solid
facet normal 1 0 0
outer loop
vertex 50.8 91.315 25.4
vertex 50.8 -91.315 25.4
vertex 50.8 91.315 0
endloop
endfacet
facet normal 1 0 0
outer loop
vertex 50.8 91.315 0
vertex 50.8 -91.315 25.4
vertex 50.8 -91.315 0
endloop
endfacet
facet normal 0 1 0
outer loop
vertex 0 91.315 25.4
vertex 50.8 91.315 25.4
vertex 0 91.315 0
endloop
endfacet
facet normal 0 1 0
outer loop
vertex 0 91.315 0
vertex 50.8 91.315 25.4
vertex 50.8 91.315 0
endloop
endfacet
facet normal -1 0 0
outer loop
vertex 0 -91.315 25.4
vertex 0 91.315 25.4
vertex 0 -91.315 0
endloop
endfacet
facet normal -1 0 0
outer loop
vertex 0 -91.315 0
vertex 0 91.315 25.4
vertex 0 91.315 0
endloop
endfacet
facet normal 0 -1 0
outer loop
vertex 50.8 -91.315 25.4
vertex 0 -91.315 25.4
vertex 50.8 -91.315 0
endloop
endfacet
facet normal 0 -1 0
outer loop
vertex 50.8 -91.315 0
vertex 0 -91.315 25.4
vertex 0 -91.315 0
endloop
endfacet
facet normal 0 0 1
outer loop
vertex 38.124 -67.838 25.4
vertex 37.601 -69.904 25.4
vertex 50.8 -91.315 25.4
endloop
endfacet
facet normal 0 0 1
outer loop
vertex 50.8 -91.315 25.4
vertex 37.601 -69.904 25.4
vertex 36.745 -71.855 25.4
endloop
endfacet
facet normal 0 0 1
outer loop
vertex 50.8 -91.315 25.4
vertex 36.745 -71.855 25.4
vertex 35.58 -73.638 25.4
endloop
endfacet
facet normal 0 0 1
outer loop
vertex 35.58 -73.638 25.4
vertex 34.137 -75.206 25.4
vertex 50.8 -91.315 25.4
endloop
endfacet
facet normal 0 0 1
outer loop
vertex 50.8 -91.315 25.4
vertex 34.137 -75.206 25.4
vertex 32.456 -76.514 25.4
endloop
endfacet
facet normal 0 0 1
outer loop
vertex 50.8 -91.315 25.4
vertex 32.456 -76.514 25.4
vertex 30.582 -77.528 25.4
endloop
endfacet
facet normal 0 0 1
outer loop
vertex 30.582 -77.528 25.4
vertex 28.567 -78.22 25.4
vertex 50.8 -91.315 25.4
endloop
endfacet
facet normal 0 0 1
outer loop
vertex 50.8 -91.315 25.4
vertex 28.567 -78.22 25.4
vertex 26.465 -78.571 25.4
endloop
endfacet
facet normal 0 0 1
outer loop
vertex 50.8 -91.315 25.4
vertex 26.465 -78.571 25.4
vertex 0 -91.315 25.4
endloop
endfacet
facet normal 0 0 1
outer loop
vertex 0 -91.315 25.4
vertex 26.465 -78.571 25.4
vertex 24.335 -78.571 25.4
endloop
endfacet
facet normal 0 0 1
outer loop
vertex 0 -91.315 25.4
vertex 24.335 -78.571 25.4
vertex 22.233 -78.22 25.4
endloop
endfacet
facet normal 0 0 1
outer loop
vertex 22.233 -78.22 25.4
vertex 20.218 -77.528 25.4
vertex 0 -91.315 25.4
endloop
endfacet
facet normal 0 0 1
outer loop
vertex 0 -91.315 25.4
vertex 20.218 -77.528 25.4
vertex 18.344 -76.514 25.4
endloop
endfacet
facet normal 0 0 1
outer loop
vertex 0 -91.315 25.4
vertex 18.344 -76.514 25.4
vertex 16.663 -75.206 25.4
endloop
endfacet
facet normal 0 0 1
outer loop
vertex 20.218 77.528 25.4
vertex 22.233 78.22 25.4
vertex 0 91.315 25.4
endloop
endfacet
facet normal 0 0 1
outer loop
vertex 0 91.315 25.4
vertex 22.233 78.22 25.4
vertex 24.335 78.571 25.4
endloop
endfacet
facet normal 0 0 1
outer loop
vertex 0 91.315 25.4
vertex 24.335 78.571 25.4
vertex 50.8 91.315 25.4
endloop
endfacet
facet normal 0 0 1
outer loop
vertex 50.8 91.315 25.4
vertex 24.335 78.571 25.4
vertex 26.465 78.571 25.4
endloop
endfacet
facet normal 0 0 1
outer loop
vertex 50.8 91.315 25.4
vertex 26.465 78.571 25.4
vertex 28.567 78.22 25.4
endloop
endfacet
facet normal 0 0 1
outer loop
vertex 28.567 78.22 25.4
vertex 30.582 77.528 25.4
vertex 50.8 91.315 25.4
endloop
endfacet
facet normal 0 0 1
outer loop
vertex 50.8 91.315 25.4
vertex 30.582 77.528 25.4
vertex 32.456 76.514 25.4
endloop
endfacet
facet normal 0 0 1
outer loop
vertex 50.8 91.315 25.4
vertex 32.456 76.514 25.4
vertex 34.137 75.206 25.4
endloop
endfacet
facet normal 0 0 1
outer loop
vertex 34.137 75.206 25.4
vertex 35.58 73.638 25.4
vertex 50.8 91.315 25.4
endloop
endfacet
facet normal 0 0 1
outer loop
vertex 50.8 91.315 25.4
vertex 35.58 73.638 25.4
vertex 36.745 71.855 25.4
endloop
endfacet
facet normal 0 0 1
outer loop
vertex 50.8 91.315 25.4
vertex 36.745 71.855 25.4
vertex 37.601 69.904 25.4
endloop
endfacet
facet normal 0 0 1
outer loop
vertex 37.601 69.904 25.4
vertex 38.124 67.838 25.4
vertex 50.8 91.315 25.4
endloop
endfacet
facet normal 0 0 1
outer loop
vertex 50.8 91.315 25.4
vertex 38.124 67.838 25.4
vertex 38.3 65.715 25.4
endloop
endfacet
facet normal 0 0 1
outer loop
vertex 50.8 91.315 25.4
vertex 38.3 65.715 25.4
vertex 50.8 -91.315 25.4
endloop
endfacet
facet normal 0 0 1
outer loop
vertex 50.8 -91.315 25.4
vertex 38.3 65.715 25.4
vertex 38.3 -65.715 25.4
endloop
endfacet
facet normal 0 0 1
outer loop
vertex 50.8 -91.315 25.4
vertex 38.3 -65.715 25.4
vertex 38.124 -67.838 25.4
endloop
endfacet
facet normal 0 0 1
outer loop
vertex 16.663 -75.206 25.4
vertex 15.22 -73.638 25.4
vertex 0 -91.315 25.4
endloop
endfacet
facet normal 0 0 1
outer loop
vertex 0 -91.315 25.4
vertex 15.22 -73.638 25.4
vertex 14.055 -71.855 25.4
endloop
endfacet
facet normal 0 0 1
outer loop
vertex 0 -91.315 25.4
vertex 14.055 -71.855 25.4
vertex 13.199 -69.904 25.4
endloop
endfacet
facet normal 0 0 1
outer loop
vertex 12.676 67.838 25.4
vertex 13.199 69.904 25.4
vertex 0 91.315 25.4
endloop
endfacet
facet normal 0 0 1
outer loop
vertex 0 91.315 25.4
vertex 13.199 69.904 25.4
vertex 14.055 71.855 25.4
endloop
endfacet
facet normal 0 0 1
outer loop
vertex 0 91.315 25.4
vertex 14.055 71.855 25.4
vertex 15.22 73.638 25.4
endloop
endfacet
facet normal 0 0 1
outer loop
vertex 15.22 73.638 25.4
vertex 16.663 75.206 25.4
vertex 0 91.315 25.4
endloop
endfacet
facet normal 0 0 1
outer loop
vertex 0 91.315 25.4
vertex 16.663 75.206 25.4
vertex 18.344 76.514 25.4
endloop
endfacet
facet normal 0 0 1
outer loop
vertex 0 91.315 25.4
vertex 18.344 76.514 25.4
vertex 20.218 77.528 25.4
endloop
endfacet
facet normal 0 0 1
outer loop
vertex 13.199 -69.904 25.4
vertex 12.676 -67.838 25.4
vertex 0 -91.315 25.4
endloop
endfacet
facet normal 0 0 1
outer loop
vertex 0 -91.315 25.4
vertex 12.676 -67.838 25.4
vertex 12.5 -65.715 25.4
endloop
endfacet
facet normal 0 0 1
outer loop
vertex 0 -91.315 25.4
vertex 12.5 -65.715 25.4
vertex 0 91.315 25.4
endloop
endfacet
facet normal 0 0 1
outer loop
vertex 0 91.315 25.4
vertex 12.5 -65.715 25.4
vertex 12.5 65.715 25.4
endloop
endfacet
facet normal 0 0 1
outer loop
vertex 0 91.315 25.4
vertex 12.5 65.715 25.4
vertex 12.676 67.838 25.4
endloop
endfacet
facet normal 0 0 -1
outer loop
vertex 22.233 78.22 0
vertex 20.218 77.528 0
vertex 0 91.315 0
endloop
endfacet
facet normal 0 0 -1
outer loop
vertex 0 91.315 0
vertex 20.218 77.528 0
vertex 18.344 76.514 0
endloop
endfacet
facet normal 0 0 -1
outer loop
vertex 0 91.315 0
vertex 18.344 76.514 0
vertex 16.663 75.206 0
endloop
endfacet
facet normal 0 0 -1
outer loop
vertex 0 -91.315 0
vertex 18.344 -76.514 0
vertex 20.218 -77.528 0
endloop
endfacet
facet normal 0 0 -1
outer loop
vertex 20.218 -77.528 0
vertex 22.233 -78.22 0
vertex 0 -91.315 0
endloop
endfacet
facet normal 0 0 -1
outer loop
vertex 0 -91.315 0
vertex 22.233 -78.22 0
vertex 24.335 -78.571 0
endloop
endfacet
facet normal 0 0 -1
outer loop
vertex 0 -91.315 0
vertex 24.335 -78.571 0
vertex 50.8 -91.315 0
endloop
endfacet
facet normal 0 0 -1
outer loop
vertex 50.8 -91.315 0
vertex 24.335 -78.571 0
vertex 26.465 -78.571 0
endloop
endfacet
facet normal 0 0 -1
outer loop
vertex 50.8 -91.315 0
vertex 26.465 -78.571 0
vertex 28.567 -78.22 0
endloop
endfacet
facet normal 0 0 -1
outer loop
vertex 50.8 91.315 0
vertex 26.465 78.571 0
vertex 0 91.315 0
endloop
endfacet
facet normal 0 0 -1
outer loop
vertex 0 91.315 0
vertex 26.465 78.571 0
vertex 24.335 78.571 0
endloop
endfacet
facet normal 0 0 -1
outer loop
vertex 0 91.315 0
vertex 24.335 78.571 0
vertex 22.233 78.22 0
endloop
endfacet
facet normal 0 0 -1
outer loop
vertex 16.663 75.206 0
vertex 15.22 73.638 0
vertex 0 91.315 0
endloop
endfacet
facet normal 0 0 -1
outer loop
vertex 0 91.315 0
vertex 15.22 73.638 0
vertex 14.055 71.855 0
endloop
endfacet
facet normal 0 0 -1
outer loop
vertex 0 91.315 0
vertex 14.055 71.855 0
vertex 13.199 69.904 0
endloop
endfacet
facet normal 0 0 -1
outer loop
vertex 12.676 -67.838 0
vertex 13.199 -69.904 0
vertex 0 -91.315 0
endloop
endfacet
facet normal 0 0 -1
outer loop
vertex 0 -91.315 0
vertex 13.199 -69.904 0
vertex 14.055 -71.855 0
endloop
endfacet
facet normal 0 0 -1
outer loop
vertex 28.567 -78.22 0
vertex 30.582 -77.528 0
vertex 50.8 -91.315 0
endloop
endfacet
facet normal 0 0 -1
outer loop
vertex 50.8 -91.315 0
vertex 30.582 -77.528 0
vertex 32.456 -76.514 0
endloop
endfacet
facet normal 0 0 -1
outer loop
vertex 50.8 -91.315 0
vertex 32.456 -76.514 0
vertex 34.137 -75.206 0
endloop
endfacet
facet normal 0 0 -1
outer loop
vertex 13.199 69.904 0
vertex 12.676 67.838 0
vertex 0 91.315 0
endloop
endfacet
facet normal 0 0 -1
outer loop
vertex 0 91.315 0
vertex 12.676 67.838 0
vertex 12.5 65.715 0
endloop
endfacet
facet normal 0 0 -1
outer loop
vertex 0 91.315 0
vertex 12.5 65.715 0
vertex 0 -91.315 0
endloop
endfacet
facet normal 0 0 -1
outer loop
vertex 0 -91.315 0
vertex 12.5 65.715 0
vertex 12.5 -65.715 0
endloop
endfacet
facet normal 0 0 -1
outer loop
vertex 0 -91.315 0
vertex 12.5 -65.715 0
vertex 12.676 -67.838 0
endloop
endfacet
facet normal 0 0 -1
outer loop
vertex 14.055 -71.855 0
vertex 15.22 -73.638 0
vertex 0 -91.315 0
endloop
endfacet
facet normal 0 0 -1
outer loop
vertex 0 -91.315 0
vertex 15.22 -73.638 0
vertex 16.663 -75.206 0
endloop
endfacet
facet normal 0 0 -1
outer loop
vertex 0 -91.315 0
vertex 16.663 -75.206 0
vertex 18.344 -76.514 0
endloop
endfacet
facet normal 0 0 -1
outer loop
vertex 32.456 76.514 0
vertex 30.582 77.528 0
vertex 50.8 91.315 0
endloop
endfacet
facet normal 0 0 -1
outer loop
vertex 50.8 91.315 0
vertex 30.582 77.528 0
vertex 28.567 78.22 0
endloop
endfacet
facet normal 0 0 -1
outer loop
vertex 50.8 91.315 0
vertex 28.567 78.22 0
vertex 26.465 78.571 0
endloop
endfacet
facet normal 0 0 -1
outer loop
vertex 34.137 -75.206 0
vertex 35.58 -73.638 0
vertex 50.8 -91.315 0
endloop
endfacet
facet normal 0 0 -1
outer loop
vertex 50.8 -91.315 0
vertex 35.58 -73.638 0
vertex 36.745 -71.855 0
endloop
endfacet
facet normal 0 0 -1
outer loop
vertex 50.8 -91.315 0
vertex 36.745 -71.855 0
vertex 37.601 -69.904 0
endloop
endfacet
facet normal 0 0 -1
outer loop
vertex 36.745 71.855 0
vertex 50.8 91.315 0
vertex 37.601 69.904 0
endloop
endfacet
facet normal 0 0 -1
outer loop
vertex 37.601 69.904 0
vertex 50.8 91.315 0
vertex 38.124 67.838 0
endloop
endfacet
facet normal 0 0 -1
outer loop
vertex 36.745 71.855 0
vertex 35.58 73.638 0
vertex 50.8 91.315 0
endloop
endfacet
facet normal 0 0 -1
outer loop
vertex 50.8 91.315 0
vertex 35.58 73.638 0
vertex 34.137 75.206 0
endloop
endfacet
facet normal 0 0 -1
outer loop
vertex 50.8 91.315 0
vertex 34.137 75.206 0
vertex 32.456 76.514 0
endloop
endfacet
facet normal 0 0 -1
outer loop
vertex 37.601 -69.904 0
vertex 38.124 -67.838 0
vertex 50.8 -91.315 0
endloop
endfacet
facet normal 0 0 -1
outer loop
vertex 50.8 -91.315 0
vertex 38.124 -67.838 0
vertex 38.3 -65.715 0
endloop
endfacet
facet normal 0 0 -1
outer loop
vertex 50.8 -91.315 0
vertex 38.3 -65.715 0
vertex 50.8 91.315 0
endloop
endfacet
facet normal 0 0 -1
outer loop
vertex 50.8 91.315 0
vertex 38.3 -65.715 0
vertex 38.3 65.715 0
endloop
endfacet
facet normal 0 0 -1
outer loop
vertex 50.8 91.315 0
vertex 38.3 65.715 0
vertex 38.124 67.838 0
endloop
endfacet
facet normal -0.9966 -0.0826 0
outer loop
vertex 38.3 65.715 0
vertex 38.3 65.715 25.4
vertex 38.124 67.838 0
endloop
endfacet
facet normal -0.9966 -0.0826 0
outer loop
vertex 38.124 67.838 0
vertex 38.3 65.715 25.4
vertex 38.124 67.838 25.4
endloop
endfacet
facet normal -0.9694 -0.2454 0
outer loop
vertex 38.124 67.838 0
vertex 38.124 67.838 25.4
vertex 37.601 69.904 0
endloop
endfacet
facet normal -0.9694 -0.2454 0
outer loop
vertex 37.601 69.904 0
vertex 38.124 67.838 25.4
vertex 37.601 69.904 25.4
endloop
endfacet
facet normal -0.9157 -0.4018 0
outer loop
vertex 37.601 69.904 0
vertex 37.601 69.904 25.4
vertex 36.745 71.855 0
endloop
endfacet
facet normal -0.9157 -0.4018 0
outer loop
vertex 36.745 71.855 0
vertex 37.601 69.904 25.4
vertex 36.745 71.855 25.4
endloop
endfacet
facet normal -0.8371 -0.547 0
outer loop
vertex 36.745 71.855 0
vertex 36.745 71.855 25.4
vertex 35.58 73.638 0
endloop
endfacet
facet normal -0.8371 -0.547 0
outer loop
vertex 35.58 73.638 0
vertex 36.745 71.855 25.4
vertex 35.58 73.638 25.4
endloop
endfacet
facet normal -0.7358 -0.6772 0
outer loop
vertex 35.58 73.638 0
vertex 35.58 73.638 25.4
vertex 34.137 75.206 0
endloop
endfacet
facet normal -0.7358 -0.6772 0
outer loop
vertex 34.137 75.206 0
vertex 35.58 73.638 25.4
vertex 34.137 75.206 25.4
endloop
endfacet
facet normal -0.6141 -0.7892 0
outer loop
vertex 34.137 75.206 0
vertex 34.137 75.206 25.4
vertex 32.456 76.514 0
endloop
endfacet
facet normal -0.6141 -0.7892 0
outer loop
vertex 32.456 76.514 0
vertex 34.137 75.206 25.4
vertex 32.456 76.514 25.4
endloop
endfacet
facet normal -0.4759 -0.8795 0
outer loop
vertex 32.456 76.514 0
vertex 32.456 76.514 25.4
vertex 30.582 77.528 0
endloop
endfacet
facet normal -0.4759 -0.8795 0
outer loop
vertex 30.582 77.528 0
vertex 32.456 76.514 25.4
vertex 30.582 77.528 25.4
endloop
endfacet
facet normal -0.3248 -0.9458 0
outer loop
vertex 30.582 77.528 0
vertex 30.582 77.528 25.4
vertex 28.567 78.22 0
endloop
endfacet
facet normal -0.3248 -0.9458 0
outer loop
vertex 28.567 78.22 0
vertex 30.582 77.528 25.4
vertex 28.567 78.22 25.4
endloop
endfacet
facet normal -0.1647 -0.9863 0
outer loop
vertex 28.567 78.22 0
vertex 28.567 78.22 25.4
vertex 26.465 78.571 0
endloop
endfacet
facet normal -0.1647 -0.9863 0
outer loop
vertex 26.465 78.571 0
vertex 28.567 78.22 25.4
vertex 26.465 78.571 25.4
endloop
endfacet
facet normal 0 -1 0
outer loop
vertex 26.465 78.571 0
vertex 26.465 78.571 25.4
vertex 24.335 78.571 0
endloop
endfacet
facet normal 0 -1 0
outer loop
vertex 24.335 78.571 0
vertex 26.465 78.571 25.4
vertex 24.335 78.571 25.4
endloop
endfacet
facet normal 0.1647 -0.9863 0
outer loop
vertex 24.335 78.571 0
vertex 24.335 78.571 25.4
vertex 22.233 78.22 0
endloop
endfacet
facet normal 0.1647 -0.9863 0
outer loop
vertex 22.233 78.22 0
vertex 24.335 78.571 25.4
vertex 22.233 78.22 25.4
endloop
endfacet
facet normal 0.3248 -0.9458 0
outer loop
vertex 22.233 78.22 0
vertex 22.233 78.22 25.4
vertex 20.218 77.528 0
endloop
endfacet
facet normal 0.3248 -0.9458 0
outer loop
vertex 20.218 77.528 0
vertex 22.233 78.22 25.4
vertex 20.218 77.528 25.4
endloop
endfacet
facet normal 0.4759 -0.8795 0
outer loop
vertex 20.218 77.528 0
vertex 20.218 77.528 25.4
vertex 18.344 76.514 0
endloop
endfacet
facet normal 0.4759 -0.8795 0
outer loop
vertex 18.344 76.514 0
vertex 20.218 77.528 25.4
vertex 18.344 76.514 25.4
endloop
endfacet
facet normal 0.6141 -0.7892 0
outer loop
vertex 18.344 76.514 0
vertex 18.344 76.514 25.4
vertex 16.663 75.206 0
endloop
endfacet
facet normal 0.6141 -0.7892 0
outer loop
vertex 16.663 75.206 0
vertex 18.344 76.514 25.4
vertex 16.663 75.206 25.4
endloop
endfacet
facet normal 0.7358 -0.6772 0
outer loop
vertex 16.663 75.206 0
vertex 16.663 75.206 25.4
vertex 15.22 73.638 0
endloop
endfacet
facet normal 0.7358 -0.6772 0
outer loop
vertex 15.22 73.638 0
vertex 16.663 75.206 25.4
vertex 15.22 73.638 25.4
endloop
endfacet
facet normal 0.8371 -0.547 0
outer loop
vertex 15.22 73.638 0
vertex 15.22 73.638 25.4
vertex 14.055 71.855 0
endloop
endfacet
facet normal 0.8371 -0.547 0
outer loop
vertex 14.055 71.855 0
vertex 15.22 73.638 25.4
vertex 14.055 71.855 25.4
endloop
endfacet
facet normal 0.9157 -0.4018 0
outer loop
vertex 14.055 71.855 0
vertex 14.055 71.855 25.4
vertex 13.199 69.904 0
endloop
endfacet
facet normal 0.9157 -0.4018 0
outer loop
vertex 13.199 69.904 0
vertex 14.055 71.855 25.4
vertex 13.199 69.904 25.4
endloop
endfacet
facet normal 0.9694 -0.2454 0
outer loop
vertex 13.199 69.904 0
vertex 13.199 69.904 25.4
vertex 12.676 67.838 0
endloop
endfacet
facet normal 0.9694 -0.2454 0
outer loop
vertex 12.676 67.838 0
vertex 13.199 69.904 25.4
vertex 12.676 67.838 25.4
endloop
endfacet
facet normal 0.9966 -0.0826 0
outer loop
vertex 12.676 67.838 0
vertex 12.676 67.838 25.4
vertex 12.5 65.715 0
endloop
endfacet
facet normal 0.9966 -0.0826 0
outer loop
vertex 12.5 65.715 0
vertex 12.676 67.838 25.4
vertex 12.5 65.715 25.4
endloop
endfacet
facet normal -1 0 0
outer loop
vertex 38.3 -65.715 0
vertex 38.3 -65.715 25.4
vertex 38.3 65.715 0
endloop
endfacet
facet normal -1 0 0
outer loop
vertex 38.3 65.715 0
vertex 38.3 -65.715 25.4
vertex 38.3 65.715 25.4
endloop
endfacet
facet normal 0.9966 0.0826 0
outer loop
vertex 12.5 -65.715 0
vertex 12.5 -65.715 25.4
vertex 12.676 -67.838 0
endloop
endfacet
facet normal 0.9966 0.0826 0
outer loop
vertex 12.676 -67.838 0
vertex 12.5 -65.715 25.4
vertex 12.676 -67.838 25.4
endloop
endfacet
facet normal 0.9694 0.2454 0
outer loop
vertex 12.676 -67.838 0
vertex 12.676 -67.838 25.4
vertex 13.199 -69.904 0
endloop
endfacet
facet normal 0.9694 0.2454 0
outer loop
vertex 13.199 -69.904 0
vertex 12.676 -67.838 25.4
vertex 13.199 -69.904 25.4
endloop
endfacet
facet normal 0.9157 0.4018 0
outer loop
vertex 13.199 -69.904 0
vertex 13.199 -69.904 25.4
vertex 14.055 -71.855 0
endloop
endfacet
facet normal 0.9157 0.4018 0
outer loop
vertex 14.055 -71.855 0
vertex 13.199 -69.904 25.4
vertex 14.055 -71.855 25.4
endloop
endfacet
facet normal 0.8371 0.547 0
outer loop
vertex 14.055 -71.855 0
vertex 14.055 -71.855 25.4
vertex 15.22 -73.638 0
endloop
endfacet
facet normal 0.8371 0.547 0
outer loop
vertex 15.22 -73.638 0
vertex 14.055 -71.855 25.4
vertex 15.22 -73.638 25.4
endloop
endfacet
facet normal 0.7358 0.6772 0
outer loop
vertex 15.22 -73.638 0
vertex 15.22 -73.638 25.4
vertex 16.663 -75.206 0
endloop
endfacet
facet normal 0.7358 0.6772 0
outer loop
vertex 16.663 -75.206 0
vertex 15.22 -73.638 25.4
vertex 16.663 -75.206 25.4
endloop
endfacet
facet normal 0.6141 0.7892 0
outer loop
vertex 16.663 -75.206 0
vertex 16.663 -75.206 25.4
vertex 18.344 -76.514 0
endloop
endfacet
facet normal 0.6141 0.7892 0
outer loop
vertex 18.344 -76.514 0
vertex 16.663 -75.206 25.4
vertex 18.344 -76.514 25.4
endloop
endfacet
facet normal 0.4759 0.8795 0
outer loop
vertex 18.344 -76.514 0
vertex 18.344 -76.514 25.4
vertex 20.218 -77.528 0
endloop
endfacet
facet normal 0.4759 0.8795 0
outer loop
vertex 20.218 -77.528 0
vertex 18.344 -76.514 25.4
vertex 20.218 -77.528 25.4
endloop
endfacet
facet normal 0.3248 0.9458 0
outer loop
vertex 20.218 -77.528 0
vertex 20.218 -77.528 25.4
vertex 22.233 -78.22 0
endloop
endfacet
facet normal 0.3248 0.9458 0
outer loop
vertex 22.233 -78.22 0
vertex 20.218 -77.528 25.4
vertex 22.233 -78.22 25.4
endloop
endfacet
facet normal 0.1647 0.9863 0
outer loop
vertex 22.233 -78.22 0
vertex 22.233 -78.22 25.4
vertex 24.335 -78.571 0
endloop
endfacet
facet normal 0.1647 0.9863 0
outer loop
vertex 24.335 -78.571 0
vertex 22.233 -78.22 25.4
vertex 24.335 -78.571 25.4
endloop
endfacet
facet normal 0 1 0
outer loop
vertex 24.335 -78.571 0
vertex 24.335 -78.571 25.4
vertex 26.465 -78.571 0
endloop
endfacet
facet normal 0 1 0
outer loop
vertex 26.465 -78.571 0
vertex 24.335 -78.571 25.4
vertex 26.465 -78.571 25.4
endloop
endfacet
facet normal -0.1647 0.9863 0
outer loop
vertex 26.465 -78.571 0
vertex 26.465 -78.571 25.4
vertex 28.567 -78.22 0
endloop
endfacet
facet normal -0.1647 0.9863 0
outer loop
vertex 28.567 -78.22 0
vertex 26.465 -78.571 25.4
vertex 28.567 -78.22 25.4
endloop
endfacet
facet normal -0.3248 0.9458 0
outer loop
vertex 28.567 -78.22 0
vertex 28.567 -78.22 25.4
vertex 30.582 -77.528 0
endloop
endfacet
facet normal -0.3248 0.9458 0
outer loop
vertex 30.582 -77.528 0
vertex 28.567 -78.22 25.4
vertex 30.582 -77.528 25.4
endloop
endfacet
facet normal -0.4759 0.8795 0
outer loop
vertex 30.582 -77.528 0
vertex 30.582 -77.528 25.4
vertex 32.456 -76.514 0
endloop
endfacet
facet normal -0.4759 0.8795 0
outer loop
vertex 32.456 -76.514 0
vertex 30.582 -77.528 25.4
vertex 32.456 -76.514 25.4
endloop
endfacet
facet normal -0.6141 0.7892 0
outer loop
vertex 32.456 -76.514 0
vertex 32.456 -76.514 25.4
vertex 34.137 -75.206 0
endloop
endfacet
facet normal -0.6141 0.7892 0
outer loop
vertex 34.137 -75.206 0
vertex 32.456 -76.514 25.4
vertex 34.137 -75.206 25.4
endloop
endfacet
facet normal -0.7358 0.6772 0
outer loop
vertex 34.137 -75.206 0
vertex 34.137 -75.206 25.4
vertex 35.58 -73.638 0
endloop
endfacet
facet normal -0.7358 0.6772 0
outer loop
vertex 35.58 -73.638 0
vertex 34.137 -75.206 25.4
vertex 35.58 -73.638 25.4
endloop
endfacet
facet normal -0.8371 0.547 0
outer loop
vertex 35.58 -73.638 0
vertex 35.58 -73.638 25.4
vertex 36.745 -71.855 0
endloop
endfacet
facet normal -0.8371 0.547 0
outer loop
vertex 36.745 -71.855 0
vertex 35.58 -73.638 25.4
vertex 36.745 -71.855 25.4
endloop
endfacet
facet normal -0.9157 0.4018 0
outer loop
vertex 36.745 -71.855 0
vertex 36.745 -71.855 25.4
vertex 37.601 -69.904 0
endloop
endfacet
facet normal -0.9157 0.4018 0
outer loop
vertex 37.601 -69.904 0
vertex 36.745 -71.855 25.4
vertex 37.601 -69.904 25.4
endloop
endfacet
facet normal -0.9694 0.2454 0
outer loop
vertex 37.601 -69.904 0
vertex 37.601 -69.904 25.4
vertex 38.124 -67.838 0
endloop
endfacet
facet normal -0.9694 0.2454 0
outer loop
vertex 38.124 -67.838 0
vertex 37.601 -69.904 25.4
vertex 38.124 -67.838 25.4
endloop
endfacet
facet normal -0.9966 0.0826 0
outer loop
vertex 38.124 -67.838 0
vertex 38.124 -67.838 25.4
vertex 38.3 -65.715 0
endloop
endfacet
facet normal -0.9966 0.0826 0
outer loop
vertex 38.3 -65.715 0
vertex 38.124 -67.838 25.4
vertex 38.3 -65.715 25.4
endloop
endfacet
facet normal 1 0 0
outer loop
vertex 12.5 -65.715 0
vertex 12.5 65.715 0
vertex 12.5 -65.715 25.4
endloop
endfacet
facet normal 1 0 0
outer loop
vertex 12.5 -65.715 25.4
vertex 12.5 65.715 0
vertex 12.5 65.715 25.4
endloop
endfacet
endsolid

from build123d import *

# Parameters (mm, degrees)
SKETCH1_W               = 50.8
SKETCH1_H               = 182.629999942
BOSS_EXTRUDE1_DEPTH     = 25.4
CUT_EXTRUDE1_DEPTH      = 108.537106246
CUT_EXTRUDE1_DEPTH_BACK = 108.537106246


with BuildPart() as part:
    # Sketch1 → Boss-Extrude1 (new body)
    with BuildSketch(Plane.XY):
        with Locations((25.4, 0)):
            Rectangle(SKETCH1_W, SKETCH1_H)
    extrude(amount=BOSS_EXTRUDE1_DEPTH)

    # Sketch2 → Cut-Extrude1 (cut, two sides: drawn at the far end of the back side and taken through both)
    with BuildSketch(Plane.XY.offset(25.4).offset(-CUT_EXTRUDE1_DEPTH_BACK)):
        with BuildLine():
            Line((38.3, 65.714999971), (38.3, -65.714999971))
            ThreePointArc((38.3, -65.714999971), (25.4, -78.614999971), (12.5, -65.714999971))
            Line((12.5, -65.714999971), (12.5, 65.714999971))
            ThreePointArc((12.5, 65.714999971), (25.4, 78.614999971), (38.3, 65.714999971))
        make_face()
    extrude(amount=CUT_EXTRUDE1_DEPTH + CUT_EXTRUDE1_DEPTH_BACK, mode=Mode.SUBTRACT)


solid = part.part
